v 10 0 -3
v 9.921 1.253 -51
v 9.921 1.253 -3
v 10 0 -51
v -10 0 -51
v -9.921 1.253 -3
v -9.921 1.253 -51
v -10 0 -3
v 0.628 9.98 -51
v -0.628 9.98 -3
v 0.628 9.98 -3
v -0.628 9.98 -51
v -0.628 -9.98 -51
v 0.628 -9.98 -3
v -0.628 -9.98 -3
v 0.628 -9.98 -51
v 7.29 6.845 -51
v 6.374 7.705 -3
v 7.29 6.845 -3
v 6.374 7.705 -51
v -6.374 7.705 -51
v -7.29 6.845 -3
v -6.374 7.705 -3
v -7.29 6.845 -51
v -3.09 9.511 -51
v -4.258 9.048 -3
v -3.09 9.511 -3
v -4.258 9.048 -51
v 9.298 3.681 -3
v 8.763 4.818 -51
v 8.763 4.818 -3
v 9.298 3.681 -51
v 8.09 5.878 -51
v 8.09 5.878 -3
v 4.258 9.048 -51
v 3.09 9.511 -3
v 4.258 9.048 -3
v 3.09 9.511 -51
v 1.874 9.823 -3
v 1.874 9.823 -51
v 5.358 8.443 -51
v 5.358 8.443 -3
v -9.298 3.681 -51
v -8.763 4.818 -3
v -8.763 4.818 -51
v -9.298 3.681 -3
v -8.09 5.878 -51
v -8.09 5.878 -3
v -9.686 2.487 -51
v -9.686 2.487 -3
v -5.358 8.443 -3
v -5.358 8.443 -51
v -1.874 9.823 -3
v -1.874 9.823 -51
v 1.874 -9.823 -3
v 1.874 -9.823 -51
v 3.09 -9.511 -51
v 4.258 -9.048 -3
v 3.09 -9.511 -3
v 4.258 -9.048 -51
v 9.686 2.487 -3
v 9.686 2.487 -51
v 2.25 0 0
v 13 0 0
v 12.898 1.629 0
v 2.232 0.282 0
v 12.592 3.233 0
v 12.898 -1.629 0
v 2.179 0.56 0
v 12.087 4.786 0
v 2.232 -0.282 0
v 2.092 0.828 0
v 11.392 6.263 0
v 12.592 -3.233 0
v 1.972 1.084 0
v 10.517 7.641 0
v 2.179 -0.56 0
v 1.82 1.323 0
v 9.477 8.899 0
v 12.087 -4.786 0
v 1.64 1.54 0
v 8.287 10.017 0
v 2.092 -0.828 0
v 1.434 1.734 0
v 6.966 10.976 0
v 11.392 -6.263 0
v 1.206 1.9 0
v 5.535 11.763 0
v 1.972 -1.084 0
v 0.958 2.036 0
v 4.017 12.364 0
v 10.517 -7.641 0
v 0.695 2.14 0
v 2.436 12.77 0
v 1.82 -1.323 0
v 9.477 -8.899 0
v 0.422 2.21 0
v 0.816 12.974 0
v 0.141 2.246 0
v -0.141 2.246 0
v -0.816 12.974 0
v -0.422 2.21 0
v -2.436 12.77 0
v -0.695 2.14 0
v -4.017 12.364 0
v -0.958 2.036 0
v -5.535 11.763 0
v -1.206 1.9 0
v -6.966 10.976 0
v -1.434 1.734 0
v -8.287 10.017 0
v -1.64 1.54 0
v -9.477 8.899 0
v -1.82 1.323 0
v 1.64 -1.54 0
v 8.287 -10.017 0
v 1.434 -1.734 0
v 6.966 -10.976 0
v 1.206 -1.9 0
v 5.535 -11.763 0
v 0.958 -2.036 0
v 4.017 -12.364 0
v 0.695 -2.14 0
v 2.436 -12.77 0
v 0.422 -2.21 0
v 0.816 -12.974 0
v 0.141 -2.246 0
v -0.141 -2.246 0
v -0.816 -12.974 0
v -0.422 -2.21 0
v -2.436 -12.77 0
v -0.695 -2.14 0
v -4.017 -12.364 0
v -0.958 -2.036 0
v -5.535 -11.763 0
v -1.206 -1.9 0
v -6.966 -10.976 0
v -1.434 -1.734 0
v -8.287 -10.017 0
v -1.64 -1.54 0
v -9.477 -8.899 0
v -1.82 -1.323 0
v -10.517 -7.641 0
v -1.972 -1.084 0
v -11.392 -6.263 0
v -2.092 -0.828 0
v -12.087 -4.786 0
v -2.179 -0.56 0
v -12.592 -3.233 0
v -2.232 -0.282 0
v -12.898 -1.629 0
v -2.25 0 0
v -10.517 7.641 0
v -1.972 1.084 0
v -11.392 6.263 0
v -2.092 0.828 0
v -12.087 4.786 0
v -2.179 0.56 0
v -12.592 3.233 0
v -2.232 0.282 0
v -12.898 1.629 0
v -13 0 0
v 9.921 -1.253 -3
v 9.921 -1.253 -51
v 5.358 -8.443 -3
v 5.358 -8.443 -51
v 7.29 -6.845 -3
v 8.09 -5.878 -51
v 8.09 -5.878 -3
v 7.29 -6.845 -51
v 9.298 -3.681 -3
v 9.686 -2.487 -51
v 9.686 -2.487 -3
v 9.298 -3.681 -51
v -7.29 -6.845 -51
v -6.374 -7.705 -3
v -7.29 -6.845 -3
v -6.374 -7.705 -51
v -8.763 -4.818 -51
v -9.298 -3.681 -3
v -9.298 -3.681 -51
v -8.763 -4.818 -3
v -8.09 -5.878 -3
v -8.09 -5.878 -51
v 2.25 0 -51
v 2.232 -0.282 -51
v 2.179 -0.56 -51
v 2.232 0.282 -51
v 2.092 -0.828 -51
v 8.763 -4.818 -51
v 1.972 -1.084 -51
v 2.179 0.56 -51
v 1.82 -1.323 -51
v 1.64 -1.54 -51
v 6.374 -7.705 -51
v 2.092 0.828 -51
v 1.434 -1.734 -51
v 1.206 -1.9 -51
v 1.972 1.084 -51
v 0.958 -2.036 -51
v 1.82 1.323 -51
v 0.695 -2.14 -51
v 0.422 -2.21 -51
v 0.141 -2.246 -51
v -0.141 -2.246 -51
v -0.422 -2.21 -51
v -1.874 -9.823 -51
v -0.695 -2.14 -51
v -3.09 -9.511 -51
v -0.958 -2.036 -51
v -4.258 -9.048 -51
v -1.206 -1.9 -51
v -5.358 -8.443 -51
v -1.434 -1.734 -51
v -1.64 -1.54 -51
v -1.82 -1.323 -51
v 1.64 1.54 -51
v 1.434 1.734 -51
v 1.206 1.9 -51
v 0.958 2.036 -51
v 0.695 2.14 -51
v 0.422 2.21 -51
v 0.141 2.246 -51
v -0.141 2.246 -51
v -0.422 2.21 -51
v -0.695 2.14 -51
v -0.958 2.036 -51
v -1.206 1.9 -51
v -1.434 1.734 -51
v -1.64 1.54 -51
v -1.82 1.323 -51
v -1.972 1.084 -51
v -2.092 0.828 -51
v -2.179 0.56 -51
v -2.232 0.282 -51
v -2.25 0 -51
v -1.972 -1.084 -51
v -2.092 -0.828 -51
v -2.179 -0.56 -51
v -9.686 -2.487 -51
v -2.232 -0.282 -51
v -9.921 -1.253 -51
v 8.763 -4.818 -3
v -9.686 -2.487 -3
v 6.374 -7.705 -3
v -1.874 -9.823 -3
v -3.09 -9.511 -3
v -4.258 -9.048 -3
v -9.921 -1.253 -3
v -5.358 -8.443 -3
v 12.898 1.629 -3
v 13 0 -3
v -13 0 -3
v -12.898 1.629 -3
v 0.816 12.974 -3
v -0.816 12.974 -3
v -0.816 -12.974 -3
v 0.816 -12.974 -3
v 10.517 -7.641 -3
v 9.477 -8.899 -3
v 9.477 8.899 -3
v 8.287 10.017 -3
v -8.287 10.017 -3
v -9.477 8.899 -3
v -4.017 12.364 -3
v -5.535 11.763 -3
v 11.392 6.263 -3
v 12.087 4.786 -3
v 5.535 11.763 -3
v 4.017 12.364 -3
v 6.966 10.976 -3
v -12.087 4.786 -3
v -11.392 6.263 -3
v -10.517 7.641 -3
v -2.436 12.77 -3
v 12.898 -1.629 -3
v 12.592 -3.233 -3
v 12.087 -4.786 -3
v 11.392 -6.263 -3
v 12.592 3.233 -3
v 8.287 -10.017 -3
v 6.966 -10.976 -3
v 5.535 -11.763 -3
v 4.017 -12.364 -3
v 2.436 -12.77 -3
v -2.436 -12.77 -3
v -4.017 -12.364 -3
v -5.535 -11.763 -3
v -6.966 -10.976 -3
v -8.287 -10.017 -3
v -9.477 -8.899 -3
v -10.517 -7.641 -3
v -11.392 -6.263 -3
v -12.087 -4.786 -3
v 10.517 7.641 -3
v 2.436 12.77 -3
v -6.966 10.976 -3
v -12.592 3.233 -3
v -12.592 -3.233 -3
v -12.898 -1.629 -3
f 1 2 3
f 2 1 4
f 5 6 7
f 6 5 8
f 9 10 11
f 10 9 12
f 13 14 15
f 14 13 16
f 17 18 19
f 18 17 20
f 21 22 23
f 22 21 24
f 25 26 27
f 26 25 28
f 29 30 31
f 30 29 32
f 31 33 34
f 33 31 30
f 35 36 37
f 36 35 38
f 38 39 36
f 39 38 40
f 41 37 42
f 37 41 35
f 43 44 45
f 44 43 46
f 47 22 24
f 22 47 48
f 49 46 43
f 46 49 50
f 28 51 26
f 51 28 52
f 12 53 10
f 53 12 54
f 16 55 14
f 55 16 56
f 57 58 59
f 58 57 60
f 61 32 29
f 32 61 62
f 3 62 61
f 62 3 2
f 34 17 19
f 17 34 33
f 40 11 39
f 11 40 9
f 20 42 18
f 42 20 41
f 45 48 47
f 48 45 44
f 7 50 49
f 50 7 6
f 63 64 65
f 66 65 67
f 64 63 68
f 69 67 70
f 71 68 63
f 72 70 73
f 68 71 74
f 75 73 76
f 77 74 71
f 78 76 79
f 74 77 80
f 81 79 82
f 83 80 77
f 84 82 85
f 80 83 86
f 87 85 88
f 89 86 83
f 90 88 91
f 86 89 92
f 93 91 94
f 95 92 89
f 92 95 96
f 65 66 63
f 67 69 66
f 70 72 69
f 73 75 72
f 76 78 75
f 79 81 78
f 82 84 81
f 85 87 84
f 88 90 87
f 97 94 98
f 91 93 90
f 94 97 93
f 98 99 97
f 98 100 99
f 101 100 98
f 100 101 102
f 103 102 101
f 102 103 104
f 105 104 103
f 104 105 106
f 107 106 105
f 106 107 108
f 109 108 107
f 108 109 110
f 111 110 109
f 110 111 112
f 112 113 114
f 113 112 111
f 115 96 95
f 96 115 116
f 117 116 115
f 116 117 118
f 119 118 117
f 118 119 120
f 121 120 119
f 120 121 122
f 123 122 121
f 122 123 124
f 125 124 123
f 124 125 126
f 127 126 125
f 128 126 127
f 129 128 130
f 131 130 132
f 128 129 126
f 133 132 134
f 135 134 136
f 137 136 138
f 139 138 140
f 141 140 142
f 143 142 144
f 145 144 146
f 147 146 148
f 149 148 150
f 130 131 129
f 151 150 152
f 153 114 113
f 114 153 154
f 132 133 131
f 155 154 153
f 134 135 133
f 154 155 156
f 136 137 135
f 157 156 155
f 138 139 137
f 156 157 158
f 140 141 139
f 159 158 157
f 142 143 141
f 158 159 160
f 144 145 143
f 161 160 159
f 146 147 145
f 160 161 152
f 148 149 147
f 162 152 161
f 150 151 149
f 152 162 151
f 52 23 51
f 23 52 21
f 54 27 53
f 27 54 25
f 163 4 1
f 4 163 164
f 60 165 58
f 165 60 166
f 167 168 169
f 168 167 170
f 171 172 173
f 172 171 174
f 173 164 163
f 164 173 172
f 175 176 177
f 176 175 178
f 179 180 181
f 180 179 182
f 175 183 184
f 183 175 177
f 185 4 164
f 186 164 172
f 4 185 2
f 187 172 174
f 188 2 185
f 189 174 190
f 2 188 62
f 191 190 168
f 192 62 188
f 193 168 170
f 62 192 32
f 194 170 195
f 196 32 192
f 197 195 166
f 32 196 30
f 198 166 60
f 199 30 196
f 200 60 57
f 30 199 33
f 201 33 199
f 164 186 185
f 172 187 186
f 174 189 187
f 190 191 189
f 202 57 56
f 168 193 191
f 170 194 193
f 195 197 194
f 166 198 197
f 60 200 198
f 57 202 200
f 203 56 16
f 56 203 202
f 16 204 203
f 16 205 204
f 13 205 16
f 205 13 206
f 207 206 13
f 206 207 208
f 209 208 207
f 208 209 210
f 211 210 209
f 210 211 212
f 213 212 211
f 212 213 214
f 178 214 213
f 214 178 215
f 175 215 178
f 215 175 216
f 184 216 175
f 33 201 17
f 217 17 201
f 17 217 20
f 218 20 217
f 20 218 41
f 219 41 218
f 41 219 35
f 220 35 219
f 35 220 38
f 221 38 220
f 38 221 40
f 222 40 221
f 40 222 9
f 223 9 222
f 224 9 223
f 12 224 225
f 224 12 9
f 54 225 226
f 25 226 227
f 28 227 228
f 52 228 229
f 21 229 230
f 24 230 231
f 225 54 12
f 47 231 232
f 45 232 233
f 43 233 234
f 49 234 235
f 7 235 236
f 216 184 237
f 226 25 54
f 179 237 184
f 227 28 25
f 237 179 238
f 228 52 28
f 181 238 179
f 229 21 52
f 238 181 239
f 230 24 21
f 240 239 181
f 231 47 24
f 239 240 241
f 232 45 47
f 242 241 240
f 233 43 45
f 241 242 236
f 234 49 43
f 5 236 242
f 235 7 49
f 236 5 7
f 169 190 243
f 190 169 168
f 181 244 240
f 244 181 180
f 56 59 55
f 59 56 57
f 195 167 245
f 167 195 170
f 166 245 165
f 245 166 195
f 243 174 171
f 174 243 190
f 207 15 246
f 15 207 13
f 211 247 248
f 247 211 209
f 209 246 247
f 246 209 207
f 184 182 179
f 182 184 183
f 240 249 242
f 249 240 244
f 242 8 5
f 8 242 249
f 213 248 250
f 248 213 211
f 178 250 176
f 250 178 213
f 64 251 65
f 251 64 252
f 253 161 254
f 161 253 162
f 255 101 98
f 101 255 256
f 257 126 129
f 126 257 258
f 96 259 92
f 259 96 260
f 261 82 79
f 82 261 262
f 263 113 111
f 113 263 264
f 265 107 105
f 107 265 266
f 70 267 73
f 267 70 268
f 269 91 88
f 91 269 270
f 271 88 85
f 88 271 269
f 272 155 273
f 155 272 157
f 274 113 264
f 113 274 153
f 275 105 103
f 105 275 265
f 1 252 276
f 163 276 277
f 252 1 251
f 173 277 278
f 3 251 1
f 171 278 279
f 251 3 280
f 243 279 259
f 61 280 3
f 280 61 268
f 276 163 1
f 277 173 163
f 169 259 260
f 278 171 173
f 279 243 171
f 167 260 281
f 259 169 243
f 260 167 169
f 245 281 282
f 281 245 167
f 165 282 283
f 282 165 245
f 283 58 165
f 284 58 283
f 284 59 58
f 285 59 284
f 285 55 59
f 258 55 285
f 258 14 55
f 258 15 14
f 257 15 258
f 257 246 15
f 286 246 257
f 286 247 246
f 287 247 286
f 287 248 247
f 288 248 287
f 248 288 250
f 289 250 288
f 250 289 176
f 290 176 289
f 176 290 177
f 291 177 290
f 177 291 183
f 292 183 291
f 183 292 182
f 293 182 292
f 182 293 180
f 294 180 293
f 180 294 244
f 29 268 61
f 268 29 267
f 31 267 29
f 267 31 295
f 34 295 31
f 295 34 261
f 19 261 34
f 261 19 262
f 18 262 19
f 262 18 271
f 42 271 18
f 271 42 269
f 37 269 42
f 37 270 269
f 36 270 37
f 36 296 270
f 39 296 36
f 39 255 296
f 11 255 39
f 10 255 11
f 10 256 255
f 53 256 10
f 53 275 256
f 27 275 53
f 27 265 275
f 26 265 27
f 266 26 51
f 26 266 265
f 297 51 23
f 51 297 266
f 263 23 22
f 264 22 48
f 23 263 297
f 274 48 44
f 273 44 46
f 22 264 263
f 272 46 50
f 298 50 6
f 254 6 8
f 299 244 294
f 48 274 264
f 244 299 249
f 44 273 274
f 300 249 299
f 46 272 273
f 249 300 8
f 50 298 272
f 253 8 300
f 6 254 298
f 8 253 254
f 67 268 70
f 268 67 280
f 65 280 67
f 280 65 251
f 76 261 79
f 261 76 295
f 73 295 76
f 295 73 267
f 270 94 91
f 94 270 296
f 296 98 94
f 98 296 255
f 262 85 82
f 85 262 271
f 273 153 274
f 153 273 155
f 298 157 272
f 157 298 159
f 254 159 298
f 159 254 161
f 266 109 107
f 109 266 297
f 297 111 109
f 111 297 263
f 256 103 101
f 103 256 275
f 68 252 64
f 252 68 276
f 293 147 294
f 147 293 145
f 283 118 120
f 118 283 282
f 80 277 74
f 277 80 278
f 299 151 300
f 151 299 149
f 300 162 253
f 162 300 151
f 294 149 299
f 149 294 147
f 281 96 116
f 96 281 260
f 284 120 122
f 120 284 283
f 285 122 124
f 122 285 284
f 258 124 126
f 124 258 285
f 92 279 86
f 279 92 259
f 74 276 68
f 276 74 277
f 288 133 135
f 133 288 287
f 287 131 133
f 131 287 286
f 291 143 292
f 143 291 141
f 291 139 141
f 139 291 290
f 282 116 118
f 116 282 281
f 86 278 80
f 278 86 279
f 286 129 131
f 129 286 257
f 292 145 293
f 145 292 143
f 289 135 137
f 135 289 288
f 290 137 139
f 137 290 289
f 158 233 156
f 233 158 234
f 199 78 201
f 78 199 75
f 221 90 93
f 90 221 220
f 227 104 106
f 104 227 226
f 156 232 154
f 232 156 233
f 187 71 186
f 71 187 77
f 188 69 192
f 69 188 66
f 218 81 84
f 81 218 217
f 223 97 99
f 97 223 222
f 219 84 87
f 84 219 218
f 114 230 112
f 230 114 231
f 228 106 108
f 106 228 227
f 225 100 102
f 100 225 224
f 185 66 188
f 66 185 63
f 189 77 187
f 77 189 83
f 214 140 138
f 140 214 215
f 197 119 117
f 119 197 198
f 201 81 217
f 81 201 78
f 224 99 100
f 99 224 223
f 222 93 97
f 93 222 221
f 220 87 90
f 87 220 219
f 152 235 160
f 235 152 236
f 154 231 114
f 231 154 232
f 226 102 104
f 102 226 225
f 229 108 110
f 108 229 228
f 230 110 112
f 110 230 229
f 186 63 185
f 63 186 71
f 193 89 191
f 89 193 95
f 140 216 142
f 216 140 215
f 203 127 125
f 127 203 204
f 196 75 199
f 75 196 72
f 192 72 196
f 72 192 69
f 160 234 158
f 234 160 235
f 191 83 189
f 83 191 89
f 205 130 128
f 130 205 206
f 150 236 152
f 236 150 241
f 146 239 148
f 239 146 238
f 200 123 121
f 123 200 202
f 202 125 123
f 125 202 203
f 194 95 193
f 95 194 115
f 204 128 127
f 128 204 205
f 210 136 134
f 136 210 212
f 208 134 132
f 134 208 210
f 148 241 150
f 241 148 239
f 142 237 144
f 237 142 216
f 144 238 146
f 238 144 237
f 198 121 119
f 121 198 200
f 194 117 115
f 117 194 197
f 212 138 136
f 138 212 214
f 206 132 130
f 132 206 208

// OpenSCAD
$fn = 50;


difference() {
	union() {
		translate(v = [0, 0, -51.0000000000]) {
			cylinder(h = 51, r = 10.0000000000);
		}
		translate(v = [0, 0, -3.0000000000]) {
			cylinder(h = 3, r = 13.0000000000);
		}
	}
	union() {
		#translate(v = [0, 0, -51]) {
			cylinder(h = 51, r = 2.2500000000);
		}
	}
}
